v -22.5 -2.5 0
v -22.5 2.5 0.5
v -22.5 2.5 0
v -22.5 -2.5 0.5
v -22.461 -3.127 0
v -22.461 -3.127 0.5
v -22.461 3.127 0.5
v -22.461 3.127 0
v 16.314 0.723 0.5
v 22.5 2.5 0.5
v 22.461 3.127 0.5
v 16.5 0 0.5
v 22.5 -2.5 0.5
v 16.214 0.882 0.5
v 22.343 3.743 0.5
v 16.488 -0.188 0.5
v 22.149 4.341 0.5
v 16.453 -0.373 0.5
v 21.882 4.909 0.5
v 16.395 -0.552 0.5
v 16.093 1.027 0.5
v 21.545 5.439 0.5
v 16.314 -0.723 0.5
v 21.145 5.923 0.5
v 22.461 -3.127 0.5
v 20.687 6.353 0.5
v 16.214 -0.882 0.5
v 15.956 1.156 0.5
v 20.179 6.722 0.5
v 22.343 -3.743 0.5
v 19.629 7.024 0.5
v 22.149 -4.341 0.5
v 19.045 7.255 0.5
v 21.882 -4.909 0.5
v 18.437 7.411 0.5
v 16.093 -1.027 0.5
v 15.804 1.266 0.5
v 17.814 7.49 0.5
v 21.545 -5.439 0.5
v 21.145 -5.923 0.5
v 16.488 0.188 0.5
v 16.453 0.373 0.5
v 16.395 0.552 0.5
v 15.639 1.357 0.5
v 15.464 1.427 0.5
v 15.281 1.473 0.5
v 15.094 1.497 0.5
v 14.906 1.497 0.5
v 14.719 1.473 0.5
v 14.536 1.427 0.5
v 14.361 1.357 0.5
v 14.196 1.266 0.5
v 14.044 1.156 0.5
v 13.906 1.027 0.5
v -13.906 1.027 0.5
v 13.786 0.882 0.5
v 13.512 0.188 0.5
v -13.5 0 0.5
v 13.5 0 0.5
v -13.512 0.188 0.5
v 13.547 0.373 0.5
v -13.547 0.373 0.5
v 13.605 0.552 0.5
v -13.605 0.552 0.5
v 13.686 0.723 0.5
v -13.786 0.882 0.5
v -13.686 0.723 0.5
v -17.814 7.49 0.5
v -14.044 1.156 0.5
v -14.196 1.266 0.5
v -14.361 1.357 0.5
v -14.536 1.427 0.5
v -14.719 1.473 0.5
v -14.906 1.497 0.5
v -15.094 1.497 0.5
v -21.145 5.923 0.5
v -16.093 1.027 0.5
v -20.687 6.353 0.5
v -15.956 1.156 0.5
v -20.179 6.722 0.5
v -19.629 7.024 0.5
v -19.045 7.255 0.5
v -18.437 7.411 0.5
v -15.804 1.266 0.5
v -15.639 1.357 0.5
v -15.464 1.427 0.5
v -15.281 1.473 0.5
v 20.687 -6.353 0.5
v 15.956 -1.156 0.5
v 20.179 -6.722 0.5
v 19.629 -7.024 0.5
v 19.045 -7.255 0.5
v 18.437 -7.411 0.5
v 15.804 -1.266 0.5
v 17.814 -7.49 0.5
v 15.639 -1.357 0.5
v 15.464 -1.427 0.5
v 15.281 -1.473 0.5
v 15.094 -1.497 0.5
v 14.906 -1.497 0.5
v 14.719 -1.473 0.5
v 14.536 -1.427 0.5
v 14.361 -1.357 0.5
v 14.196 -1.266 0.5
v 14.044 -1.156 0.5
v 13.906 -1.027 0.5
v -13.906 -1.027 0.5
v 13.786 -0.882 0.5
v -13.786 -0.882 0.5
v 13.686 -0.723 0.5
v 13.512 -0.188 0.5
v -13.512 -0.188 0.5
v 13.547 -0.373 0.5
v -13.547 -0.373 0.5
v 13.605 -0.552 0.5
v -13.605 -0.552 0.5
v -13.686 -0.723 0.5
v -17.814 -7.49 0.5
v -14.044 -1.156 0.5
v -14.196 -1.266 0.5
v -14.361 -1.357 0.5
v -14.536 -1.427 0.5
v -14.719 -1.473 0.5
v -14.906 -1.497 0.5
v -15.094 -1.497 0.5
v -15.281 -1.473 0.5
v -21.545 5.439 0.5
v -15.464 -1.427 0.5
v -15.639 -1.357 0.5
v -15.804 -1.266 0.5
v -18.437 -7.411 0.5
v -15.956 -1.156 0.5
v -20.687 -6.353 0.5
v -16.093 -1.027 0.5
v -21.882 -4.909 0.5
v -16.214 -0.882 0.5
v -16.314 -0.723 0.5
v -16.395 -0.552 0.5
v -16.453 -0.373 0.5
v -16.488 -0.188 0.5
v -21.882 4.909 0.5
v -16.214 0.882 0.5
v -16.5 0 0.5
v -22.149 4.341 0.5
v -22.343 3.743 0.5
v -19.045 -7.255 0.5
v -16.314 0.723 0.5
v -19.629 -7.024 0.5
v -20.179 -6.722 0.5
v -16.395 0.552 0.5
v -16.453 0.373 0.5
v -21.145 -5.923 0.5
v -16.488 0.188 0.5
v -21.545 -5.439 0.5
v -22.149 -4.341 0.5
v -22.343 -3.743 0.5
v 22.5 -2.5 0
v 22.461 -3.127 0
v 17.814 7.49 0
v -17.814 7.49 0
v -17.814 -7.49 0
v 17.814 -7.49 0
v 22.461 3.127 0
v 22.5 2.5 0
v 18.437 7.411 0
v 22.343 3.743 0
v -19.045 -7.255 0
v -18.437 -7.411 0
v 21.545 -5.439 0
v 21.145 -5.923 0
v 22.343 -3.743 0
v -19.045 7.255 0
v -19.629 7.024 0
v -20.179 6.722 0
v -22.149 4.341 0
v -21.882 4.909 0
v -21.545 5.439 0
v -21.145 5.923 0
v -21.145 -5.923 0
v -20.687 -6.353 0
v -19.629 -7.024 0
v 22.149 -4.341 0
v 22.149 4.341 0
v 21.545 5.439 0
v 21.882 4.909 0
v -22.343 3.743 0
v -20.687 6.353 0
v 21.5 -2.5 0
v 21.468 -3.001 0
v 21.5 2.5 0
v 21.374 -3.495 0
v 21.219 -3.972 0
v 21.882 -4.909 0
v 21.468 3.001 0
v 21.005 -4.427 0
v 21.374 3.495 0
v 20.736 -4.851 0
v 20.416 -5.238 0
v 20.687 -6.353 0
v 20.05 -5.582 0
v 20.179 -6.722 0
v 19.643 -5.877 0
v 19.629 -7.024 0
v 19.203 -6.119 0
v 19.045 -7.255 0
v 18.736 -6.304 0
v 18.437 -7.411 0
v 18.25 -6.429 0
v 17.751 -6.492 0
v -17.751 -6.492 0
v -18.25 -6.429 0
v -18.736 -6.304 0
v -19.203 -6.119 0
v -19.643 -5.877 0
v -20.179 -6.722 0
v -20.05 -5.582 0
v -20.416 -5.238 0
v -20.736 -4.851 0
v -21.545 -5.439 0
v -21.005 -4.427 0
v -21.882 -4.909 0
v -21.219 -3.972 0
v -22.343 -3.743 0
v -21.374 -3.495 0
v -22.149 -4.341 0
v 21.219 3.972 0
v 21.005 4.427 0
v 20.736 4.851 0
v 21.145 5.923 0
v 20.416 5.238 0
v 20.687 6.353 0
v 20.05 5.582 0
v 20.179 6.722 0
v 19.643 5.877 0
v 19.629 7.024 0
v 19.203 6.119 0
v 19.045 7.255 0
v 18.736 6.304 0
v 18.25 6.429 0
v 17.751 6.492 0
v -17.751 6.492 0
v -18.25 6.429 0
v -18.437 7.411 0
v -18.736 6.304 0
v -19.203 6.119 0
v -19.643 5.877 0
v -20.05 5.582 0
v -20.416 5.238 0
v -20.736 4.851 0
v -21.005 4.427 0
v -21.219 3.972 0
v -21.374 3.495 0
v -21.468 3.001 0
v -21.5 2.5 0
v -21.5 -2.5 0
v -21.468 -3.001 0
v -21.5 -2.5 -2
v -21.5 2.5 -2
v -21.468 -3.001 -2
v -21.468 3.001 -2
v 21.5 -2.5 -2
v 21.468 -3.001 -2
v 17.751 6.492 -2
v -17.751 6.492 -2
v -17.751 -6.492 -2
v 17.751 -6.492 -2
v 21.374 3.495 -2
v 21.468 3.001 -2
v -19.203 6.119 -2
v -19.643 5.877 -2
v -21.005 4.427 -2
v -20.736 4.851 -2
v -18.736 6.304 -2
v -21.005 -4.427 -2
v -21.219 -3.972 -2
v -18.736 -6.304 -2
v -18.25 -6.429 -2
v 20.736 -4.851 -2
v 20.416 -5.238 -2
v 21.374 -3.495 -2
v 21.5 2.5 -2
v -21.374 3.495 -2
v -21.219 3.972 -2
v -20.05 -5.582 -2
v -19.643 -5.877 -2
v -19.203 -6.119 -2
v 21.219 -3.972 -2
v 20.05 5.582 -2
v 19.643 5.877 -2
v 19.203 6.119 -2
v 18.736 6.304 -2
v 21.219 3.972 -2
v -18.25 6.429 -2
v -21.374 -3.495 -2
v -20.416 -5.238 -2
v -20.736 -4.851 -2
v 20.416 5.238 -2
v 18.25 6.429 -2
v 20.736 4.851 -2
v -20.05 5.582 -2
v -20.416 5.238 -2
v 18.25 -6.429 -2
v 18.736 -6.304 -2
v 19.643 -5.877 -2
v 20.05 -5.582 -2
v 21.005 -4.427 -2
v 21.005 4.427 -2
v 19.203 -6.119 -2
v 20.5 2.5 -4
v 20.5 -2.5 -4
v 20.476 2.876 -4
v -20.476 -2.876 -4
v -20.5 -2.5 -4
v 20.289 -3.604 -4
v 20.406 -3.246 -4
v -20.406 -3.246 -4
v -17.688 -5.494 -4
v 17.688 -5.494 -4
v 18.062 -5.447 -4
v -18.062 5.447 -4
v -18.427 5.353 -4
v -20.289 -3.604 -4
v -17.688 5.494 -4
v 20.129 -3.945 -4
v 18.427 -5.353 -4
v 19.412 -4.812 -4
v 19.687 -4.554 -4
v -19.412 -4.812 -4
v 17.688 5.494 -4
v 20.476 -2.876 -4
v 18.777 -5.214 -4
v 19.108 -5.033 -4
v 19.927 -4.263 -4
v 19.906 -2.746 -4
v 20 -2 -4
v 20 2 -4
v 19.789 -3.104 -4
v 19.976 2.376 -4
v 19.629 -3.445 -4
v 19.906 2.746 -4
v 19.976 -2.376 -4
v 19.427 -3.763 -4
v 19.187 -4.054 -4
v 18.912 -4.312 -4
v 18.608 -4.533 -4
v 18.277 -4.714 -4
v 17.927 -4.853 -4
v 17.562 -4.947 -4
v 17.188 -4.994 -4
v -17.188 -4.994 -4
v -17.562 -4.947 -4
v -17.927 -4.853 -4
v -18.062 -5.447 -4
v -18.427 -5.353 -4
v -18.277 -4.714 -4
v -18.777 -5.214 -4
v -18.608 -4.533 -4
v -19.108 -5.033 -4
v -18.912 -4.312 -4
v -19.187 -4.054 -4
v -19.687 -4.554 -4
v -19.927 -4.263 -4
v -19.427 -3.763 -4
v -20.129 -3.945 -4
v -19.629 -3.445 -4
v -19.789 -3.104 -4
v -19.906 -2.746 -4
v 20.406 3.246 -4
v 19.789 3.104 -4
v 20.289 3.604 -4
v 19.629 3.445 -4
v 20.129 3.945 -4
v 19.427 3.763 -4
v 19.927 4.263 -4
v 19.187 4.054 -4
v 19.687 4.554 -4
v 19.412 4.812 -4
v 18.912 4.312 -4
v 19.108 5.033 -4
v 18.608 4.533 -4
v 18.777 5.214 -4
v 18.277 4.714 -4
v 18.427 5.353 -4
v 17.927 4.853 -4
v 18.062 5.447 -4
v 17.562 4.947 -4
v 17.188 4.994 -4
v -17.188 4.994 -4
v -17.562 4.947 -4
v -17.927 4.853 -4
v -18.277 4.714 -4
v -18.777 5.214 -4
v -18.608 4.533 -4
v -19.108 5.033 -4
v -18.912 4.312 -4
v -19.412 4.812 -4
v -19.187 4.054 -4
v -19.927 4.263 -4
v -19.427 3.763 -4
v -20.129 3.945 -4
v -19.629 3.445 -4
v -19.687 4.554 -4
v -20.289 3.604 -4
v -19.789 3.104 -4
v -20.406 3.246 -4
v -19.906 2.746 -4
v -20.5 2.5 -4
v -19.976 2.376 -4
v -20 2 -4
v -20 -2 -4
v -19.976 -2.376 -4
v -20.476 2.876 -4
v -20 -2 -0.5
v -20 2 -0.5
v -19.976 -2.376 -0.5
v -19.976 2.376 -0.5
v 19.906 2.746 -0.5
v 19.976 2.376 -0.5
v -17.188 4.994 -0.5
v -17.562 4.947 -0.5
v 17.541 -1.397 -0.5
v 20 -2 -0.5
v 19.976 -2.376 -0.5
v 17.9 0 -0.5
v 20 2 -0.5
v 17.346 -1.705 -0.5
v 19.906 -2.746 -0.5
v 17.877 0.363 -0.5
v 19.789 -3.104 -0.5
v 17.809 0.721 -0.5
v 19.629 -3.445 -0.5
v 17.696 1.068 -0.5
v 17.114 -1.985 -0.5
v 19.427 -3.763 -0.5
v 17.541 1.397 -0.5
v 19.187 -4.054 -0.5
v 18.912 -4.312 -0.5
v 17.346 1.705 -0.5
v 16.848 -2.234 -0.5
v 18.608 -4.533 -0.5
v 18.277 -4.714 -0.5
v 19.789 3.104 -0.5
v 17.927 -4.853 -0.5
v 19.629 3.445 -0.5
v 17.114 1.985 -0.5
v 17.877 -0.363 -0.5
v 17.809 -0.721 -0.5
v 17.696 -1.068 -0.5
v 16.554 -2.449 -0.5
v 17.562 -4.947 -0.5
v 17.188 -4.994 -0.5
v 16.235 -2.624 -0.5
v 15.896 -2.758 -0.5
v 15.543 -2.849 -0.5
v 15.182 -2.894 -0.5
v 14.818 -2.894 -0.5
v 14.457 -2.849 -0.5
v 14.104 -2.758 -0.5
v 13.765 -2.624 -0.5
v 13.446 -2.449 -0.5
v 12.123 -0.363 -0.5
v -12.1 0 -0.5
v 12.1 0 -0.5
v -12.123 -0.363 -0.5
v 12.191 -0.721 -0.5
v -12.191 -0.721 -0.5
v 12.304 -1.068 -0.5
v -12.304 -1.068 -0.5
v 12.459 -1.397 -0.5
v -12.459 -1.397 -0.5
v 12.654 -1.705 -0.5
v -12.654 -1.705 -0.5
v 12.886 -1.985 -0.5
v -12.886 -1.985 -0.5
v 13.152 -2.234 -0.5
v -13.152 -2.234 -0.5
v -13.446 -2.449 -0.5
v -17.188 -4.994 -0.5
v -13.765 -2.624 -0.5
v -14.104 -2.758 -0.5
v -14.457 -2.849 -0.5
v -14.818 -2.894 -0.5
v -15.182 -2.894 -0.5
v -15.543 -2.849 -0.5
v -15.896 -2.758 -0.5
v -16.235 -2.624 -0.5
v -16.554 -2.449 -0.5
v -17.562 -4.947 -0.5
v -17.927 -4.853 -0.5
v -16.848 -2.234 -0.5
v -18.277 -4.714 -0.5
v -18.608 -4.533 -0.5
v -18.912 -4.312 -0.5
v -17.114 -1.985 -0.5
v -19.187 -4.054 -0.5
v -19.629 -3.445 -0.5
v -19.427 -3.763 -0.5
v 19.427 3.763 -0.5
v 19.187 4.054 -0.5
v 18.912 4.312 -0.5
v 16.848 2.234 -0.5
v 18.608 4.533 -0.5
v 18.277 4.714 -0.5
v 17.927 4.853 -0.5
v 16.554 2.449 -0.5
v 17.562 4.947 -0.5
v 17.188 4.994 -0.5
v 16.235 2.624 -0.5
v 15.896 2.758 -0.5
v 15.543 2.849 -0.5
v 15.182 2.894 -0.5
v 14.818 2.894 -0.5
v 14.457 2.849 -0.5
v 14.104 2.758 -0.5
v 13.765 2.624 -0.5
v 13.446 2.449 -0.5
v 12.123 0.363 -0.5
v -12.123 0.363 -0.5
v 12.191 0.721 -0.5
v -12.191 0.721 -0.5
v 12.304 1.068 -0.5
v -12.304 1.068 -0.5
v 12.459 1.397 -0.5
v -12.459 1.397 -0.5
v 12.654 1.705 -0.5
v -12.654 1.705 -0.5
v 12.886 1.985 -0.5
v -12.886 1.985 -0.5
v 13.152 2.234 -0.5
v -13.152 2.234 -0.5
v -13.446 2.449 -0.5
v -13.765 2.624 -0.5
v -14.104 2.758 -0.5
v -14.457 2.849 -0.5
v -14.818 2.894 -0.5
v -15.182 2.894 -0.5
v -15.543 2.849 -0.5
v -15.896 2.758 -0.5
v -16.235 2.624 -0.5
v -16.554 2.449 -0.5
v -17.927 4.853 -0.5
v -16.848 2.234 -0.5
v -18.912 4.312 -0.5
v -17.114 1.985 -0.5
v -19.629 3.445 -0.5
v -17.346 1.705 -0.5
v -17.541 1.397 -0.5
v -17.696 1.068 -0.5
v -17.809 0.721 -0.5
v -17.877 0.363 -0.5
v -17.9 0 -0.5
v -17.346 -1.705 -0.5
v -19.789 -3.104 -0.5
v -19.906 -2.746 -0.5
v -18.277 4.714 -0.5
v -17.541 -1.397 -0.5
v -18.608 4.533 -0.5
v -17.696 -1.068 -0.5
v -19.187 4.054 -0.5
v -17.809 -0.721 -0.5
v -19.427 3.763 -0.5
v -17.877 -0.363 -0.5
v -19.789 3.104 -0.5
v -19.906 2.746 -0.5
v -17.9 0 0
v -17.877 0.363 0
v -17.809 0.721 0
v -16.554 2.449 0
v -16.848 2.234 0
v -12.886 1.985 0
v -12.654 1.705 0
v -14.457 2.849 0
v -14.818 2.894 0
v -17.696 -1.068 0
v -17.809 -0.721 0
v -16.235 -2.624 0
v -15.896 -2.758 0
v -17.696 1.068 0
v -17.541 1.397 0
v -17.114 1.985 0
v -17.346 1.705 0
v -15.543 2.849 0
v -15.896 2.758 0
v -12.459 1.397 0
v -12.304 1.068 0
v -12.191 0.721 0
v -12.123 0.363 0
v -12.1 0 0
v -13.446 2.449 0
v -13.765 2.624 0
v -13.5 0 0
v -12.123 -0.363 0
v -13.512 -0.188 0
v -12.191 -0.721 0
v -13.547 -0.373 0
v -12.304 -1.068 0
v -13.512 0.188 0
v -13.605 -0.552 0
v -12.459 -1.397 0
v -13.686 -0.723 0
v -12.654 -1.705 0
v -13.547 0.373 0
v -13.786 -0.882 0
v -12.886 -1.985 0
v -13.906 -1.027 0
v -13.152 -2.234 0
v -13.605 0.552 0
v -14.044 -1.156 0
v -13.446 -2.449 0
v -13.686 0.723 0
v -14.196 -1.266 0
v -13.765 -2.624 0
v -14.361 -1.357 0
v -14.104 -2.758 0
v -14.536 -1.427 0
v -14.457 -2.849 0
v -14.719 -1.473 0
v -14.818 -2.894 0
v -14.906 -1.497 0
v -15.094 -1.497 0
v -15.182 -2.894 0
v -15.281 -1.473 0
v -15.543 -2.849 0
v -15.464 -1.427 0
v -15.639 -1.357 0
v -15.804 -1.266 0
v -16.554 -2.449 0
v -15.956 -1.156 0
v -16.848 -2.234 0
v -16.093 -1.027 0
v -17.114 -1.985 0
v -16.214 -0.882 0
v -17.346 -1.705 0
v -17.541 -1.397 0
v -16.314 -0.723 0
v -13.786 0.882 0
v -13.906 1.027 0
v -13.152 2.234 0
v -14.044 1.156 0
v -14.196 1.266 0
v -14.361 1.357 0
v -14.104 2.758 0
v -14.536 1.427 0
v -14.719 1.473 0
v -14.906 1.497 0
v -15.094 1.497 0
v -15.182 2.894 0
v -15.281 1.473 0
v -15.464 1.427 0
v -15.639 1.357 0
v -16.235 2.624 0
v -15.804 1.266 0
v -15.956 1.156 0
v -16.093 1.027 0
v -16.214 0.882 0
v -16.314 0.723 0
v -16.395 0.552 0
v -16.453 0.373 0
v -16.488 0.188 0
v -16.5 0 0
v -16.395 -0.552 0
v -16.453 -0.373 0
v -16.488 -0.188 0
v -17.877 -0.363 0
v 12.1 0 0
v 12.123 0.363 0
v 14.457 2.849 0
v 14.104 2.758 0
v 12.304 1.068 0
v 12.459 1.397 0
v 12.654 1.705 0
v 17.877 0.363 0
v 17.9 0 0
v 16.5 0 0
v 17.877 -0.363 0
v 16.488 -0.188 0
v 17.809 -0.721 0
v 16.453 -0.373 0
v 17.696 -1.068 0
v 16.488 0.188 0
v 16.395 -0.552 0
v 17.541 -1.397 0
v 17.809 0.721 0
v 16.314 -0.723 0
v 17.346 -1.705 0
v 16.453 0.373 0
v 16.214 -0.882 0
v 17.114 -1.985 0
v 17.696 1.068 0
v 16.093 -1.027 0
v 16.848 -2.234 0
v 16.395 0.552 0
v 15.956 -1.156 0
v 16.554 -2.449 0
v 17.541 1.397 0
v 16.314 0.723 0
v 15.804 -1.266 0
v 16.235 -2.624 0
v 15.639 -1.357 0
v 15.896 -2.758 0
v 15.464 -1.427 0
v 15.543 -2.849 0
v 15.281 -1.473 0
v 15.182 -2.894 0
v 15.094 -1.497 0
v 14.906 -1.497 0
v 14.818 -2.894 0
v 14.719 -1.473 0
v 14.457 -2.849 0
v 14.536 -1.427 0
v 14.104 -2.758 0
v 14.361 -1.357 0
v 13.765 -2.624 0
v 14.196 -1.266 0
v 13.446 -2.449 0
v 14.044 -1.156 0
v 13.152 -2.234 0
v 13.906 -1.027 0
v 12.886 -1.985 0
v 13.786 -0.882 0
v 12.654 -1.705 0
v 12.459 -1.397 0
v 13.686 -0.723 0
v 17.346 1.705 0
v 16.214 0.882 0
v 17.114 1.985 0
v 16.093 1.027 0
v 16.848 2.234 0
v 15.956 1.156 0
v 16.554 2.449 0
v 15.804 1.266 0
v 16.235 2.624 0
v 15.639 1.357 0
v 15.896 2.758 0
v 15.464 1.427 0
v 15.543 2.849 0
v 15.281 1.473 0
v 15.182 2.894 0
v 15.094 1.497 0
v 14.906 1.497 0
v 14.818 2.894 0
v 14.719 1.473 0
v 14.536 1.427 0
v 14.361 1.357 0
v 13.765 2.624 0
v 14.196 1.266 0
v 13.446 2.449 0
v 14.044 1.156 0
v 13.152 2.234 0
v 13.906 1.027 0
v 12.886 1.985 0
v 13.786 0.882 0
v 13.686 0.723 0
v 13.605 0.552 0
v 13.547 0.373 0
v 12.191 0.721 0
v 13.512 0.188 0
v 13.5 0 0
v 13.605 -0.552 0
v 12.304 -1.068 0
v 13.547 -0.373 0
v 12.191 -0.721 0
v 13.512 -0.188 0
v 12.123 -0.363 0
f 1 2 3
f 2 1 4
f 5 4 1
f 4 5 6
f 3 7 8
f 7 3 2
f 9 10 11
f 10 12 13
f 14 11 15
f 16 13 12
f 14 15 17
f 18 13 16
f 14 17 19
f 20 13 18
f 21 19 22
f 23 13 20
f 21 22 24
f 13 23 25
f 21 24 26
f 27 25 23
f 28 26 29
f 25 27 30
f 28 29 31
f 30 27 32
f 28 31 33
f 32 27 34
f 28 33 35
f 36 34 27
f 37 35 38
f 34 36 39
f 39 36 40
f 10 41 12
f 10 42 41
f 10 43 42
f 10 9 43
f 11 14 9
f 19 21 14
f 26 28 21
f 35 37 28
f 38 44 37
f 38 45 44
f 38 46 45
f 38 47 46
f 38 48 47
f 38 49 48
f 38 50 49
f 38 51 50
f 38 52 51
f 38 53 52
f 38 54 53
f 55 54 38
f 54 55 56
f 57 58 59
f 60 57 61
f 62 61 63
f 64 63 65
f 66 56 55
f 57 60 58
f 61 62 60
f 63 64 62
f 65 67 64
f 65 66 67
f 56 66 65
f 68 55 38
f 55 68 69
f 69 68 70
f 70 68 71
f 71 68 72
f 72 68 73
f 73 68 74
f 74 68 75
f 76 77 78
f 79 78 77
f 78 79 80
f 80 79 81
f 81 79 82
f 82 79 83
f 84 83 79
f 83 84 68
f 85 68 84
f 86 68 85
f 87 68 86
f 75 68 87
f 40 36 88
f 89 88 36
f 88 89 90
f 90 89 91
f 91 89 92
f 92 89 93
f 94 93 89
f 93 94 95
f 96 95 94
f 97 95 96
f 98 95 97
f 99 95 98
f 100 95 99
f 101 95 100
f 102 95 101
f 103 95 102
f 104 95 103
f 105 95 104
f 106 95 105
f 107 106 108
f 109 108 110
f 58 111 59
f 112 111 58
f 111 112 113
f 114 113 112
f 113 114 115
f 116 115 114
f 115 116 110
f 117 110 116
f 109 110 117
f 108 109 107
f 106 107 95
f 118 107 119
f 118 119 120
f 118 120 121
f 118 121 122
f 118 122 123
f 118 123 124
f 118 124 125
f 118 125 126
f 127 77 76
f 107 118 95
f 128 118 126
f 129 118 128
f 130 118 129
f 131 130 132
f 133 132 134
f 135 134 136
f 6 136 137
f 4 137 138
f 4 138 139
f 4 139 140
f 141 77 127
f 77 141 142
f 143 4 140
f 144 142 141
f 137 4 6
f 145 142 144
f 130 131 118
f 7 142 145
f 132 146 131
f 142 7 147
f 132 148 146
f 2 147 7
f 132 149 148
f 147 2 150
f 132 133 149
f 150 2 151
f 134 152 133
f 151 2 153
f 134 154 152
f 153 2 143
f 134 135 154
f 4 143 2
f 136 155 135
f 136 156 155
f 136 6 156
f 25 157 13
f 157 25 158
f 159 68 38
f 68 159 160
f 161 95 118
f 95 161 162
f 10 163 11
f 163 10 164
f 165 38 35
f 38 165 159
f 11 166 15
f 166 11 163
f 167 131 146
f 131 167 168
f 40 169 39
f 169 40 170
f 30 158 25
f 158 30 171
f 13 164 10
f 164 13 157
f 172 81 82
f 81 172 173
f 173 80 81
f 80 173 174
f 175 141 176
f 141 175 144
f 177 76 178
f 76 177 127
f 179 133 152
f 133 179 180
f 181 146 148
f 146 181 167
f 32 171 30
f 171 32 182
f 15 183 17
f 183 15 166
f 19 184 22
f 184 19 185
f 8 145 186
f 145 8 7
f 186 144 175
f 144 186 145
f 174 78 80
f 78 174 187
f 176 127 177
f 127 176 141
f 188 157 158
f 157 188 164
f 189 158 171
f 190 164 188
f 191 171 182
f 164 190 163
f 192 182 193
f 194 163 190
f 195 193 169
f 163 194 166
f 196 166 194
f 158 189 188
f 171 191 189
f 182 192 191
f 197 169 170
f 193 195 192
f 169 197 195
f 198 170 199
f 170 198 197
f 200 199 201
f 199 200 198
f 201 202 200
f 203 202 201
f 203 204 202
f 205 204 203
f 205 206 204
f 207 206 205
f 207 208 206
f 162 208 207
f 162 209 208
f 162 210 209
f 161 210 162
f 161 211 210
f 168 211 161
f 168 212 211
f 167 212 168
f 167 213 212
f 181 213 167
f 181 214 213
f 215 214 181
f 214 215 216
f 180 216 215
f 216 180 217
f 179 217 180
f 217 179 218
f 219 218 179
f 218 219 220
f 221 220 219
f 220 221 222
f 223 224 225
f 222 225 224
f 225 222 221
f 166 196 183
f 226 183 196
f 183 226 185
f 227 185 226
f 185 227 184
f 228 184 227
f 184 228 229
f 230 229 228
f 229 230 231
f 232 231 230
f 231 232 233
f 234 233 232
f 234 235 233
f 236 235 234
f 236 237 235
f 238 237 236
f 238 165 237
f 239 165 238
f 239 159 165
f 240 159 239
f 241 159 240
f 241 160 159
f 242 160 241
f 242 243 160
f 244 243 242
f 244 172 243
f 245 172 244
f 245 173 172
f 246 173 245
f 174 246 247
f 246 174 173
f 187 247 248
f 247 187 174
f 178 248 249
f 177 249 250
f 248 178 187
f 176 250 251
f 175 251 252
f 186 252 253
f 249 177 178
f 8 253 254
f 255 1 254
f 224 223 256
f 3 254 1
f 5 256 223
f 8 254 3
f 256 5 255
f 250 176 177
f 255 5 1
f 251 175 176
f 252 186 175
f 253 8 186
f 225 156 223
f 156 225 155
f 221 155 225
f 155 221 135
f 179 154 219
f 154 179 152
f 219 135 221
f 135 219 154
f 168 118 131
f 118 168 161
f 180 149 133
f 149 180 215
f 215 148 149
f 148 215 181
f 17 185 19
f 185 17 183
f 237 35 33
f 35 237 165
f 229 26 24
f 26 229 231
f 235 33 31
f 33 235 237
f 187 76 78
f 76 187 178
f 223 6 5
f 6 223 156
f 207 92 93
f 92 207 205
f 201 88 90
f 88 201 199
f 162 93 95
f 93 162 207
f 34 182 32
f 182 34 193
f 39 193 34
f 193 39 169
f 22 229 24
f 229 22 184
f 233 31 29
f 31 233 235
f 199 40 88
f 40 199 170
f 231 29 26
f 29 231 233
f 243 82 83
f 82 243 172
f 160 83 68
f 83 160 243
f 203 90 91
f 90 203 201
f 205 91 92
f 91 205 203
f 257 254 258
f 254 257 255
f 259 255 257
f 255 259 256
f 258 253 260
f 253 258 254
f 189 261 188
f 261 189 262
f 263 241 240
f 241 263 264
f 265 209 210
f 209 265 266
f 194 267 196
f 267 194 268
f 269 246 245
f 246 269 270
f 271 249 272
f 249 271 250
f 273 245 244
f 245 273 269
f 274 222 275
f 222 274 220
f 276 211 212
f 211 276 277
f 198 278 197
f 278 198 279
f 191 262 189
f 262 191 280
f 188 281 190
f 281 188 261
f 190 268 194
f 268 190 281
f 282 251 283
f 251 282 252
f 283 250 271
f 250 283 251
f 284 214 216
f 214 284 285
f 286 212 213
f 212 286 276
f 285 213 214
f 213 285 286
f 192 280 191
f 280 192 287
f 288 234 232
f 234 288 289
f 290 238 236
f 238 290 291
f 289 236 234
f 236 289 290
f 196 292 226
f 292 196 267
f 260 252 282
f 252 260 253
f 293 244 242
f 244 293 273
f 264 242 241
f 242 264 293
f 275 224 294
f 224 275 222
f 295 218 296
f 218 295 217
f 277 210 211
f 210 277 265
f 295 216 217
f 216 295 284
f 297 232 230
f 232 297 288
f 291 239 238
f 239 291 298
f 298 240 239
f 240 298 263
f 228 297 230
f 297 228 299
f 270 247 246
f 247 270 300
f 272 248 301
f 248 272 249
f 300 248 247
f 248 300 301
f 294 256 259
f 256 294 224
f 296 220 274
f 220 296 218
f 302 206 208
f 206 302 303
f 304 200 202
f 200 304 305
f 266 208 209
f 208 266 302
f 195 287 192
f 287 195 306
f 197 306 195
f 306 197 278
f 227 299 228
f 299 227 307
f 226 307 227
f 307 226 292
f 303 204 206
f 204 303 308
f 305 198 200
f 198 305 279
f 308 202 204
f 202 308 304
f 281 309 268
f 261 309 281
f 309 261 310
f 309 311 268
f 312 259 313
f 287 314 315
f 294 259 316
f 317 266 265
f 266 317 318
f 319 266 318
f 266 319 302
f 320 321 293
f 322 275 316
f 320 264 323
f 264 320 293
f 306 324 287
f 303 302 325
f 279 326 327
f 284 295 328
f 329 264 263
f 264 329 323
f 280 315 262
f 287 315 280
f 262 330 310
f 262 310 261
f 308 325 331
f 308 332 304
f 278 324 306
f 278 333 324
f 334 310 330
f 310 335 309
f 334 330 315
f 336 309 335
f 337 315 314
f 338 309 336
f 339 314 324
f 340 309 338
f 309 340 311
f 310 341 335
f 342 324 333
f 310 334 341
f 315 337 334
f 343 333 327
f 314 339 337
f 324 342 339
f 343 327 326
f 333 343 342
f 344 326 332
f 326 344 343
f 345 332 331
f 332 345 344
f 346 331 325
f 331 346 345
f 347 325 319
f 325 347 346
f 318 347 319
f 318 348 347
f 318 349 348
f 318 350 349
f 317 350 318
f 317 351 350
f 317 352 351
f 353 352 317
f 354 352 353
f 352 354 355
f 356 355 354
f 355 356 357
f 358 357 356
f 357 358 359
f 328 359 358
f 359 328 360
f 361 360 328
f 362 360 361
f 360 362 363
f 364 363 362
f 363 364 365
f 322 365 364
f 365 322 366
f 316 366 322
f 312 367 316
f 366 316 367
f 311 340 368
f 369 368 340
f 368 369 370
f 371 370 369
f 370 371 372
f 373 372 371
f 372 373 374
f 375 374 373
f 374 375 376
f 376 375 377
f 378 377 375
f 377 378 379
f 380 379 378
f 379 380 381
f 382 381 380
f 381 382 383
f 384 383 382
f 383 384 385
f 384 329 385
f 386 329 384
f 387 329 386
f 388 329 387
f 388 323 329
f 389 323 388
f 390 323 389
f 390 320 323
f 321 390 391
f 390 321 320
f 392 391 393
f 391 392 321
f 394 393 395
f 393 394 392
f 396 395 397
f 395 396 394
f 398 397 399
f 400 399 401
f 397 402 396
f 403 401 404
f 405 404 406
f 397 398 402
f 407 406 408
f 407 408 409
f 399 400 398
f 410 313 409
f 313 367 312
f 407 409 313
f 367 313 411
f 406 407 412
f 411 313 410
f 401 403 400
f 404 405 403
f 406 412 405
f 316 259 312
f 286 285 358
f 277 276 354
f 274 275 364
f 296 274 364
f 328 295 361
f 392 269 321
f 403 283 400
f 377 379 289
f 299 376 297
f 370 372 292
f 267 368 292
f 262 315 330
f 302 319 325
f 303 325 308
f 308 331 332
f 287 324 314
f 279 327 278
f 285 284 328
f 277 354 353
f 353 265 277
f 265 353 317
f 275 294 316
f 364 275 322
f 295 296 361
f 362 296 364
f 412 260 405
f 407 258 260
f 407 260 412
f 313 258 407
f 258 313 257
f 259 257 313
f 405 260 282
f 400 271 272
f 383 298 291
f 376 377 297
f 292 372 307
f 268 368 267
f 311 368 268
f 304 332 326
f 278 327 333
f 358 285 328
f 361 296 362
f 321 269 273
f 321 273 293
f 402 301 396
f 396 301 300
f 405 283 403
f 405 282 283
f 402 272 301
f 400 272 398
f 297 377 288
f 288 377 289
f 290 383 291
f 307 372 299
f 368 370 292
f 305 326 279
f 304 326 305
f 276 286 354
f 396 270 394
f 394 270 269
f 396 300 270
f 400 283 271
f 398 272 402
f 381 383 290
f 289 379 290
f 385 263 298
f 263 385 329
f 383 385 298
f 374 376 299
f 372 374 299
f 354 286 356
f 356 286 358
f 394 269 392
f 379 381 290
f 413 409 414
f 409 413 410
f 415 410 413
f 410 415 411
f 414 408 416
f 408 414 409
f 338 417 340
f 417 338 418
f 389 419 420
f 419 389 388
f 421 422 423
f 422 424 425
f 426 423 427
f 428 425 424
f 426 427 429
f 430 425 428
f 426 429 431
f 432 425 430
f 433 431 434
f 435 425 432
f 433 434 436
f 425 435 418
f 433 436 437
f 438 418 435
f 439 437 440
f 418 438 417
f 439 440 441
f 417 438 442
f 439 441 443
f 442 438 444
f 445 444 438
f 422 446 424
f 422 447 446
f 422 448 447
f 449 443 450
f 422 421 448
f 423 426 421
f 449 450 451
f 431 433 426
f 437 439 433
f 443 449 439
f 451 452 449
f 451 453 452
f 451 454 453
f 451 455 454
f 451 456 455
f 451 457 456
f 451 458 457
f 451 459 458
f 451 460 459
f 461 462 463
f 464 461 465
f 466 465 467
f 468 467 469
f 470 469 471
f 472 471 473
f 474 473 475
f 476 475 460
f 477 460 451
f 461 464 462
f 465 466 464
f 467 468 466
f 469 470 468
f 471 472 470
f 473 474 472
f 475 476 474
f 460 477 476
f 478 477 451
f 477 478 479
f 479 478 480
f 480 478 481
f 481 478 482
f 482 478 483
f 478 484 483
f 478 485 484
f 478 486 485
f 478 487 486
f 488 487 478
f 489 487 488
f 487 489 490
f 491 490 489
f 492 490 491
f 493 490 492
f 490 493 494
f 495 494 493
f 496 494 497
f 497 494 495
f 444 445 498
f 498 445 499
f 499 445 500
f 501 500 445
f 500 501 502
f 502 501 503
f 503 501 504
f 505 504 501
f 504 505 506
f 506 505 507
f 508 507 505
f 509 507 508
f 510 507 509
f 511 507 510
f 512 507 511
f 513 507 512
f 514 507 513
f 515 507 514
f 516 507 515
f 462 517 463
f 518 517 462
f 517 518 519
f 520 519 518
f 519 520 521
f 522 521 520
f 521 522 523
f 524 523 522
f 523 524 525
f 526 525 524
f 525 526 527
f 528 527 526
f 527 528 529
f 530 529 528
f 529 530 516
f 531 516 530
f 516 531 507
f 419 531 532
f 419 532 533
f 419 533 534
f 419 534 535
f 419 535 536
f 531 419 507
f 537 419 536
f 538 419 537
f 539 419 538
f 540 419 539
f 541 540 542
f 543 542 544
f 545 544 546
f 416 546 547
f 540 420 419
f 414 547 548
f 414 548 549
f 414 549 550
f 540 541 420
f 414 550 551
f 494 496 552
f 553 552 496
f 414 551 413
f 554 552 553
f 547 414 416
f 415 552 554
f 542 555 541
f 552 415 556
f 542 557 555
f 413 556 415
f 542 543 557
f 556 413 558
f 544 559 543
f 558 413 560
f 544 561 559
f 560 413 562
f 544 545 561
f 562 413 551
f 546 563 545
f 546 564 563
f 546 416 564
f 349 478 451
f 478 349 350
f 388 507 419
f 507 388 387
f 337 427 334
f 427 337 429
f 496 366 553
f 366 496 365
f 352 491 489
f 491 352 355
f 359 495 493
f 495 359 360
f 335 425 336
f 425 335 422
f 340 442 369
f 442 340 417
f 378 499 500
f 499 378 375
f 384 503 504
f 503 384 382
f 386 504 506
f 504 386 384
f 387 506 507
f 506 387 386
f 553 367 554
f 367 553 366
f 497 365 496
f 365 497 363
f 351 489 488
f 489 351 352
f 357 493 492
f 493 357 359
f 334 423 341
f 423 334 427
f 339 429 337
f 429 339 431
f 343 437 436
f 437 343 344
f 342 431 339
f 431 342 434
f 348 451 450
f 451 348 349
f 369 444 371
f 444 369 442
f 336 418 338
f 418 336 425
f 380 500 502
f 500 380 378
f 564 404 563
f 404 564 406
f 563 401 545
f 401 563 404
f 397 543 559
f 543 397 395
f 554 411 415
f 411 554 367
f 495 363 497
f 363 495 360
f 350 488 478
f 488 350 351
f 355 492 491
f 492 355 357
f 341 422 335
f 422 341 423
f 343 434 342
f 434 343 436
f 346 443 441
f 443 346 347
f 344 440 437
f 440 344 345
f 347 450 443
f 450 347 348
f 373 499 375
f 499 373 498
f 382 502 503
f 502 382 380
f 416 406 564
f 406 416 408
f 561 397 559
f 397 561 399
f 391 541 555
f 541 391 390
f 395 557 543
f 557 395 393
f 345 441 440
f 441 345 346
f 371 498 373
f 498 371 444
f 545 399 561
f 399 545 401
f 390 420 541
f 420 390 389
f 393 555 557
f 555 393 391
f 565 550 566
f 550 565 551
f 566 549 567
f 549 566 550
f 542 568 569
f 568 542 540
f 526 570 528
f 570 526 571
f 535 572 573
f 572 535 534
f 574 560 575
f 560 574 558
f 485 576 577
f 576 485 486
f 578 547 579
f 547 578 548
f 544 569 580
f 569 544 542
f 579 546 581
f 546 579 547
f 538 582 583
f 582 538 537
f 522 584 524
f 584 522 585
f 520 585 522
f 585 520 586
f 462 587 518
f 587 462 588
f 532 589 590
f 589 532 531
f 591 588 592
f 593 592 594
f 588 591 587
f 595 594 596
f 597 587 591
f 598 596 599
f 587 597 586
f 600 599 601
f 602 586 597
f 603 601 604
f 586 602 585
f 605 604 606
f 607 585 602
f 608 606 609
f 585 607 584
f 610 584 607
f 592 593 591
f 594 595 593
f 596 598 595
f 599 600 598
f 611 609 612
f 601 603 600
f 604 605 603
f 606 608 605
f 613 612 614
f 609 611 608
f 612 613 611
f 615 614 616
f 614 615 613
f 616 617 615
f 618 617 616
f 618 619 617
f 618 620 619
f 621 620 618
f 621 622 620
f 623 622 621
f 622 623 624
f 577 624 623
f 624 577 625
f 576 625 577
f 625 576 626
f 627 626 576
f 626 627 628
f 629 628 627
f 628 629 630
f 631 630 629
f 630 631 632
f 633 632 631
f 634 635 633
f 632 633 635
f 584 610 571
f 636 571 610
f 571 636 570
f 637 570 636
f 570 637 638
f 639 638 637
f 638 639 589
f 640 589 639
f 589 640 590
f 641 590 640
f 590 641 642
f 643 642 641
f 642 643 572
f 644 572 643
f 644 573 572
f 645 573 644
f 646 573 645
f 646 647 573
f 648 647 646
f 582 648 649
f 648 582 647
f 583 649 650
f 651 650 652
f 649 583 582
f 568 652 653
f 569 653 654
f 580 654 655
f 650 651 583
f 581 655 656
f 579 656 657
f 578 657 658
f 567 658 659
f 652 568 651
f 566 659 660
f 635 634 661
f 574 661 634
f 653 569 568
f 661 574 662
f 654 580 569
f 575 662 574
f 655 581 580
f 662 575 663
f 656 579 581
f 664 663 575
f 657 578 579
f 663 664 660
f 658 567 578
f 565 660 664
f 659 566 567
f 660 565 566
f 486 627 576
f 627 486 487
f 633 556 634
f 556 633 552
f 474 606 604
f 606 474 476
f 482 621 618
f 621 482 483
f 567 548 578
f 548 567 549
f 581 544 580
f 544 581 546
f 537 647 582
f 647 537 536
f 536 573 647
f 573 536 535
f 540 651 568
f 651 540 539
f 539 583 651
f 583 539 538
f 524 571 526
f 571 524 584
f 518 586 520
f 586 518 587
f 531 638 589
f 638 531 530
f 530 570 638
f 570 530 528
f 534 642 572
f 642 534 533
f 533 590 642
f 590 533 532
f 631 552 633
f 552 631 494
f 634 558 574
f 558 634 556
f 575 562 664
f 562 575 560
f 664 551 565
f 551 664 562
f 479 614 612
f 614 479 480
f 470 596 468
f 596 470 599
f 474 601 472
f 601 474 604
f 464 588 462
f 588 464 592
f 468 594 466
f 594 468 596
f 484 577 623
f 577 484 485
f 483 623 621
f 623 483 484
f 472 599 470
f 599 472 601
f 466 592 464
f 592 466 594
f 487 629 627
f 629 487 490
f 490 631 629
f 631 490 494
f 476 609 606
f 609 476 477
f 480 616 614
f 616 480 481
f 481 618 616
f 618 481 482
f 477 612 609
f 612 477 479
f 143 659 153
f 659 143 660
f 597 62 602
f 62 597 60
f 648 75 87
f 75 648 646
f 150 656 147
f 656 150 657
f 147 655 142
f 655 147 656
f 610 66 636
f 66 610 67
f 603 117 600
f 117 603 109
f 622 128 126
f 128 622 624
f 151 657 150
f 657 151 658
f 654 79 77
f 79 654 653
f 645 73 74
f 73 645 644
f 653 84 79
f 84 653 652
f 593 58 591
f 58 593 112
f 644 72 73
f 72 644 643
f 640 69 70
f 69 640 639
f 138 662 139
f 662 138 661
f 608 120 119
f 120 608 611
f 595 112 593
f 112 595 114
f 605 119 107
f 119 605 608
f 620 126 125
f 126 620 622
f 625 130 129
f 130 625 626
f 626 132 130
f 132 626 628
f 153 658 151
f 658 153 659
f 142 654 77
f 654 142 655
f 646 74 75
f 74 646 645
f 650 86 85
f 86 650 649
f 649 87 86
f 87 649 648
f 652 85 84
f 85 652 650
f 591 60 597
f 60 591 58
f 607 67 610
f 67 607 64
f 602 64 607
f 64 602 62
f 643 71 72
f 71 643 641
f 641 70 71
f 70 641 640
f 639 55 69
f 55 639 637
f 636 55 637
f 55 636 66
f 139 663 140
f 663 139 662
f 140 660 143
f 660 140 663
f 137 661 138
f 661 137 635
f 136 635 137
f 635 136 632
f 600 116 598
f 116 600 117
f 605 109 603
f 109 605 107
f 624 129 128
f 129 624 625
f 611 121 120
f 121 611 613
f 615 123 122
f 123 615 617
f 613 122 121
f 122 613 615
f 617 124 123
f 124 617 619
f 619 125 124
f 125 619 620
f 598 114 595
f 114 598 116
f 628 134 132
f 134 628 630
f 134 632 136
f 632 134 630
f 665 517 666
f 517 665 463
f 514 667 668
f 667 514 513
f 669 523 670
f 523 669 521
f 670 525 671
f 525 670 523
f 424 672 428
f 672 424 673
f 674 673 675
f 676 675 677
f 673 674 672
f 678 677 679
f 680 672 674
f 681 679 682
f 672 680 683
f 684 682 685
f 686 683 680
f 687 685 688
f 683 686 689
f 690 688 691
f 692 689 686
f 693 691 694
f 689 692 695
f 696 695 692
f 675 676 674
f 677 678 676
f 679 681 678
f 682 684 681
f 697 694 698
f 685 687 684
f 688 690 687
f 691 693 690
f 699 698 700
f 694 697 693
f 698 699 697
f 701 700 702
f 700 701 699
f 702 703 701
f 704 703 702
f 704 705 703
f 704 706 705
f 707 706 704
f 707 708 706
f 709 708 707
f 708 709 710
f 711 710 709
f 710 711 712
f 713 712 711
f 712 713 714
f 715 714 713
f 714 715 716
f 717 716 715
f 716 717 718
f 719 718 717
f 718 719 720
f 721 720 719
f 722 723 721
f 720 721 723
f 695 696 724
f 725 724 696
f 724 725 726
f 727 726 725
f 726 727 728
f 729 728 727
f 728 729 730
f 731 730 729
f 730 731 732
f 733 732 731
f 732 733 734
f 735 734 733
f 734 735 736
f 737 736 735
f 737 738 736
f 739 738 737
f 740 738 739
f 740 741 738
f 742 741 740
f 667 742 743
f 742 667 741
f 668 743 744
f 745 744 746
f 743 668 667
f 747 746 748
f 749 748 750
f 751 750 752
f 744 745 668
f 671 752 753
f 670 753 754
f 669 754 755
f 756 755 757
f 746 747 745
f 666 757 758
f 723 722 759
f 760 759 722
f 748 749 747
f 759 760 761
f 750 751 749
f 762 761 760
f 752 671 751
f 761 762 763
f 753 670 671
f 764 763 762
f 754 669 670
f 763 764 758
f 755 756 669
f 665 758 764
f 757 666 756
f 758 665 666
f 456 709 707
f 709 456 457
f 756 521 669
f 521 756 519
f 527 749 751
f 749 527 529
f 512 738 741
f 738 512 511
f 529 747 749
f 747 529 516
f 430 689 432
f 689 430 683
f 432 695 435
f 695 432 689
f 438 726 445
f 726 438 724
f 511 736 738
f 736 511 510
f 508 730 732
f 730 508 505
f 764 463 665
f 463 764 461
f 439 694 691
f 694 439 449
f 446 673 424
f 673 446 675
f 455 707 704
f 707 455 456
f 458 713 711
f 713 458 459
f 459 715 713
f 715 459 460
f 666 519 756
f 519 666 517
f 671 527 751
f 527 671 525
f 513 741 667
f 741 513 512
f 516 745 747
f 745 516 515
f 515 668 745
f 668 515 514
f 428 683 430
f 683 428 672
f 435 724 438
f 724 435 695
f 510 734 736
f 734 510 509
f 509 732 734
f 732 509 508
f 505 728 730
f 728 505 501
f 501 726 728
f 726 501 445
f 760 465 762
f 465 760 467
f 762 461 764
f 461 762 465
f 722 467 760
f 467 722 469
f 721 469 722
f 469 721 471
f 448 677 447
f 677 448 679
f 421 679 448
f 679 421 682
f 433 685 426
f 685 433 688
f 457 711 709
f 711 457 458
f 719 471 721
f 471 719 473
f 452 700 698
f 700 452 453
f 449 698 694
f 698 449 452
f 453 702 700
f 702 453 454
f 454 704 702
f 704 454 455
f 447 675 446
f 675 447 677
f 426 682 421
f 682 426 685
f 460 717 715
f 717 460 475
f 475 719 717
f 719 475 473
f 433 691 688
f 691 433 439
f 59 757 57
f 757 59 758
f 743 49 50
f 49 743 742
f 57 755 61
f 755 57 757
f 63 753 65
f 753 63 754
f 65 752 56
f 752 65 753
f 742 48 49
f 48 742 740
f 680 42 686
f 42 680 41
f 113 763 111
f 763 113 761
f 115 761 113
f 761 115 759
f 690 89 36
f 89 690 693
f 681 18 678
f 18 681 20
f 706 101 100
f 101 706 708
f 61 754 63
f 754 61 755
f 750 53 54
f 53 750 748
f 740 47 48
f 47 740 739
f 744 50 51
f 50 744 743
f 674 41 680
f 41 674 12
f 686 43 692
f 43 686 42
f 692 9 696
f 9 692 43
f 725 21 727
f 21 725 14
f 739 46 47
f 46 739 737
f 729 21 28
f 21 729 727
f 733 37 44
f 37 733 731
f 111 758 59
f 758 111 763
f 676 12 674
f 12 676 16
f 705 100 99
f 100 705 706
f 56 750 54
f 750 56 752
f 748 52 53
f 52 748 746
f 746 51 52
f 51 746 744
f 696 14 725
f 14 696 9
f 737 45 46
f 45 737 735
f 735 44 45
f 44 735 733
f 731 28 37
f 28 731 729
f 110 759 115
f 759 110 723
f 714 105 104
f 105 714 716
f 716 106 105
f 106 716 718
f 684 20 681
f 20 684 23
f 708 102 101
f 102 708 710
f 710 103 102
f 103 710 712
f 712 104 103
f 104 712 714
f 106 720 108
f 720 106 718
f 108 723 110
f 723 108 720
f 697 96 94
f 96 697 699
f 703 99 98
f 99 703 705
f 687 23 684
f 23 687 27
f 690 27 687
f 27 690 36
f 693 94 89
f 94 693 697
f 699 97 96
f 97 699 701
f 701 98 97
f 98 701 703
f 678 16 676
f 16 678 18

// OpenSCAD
$fn = 50;


difference() {
	union() {
		translate(v = [0, 0, 0]) {
			rotate(a = [0, 0, 0]) {
				hull() {
					translate(v = [-17.5000000000, 2.5000000000, 0]) {
						rotate(a = [0, 0, 0]) {
							translate(v = [0, 0, 0]) {
								rotate(a = [0, 0, 0]) {
									cylinder(h = 0.5000000000, r = 5);
								}
							}
						}
					}
					translate(v = [17.5000000000, 2.5000000000, 0]) {
						rotate(a = [0, 0, 0]) {
							translate(v = [0, 0, 0]) {
								rotate(a = [0, 0, 0]) {
									cylinder(h = 0.5000000000, r = 5);
								}
							}
						}
					}
					translate(v = [-17.5000000000, -2.5000000000, 0]) {
						rotate(a = [0, 0, 0]) {
							translate(v = [0, 0, 0]) {
								rotate(a = [0, 0, 0]) {
									cylinder(h = 0.5000000000, r = 5);
								}
							}
						}
					}
					translate(v = [17.5000000000, -2.5000000000, 0]) {
						rotate(a = [0, 0, 0]) {
							translate(v = [0, 0, 0]) {
								rotate(a = [0, 0, 0]) {
									cylinder(h = 0.5000000000, r = 5);
								}
							}
						}
					}
				}
			}
		}
		translate(v = [0, 0, -2]) {
			rotate(a = [0, 0, 0]) {
				hull() {
					translate(v = [-17.5000000000, 2.5000000000, 0]) {
						rotate(a = [0, 0, 0]) {
							cylinder(h = 2, r1 = 4.0000000000, r2 = 4.0000000000);
						}
					}
					translate(v = [17.5000000000, 2.5000000000, 0]) {
						rotate(a = [0, 0, 0]) {
							cylinder(h = 2, r1 = 4.0000000000, r2 = 4.0000000000);
						}
					}
					translate(v = [-17.5000000000, -2.5000000000, 0]) {
						rotate(a = [0, 0, 0]) {
							cylinder(h = 2, r1 = 4.0000000000, r2 = 4.0000000000);
						}
					}
					translate(v = [17.5000000000, -2.5000000000, 0]) {
						rotate(a = [0, 0, 0]) {
							cylinder(h = 2, r1 = 4.0000000000, r2 = 4.0000000000);
						}
					}
				}
			}
		}
		translate(v = [0, 0, -4]) {
			rotate(a = [0, 180, 0]) {
				hull() {
					translate(v = [-17.5000000000, 2.5000000000, 0]) {
						rotate(a = [0, 180, 0]) {
							cylinder(h = 2, r1 = 3.0000000000, r2 = 4.0000000000);
						}
					}
					translate(v = [17.5000000000, 2.5000000000, 0]) {
						rotate(a = [0, 180, 0]) {
							cylinder(h = 2, r1 = 3.0000000000, r2 = 4.0000000000);
						}
					}
					translate(v = [-17.5000000000, -2.5000000000, 0]) {
						rotate(a = [0, 180, 0]) {
							cylinder(h = 2, r1 = 3.0000000000, r2 = 4.0000000000);
						}
					}
					translate(v = [17.5000000000, -2.5000000000, 0]) {
						rotate(a = [0, 180, 0]) {
							cylinder(h = 2, r1 = 3.0000000000, r2 = 4.0000000000);
						}
					}
				}
			}
		}
	}
	union() {
		translate(v = [0, 0, -4]) {
			rotate(a = [0, 0, 0]) {
				hull() {
					translate(v = [-17.0000000000, 2.0000000000, 0]) {
						rotate(a = [0, 0, 0]) {
							translate(v = [0, 0, 0]) {
								rotate(a = [0, 0, 0]) {
									cylinder(h = 3.5000000000, r = 3.0000000000);
								}
							}
						}
					}
					translate(v = [17.0000000000, 2.0000000000, 0]) {
						rotate(a = [0, 0, 0]) {
							translate(v = [0, 0, 0]) {
								rotate(a = [0, 0, 0]) {
									cylinder(h = 3.5000000000, r = 3.0000000000);
								}
							}
						}
					}
					translate(v = [-17.0000000000, -2.0000000000, 0]) {
						rotate(a = [0, 0, 0]) {
							translate(v = [0, 0, 0]) {
								rotate(a = [0, 0, 0]) {
									cylinder(h = 3.5000000000, r = 3.0000000000);
								}
							}
						}
					}
					translate(v = [17.0000000000, -2.0000000000, 0]) {
						rotate(a = [0, 0, 0]) {
							translate(v = [0, 0, 0]) {
								rotate(a = [0, 0, 0]) {
									cylinder(h = 3.5000000000, r = 3.0000000000);
								}
							}
						}
					}
				}
			}
		}
		#translate(v = [-15.0000000000, 0.0000000000, 0]) {
			rotate(a = [0, 180, 0]) {
				cylinder(h = 3, r = 2.9000000000);
			}
		}
		#translate(v = [-15.0000000000, 0.0000000000, 10]) {
			rotate(a = [0, 180, 0]) {
				cylinder(h = 10, r = 1.5000000000);
			}
		}
		#translate(v = [15.0000000000, 0.0000000000, 0]) {
			rotate(a = [0, 180, 0]) {
				cylinder(h = 3, r = 2.9000000000);
			}
		}
		#translate(v = [15.0000000000, 0.0000000000, 10]) {
			rotate(a = [0, 180, 0]) {
				cylinder(h = 10, r = 1.5000000000);
			}
		}
		#translate(v = [-15.0000000000, 0.0000000000, 0]) {
			rotate(a = [0, 180, 0]) {
				cylinder(h = 3, r = 2.9000000000);
			}
		}
		#translate(v = [-15.0000000000, 0.0000000000, 10]) {
			rotate(a = [0, 180, 0]) {
				cylinder(h = 10, r = 1.5000000000);
			}
		}
		#translate(v = [15.0000000000, 0.0000000000, 0]) {
			rotate(a = [0, 180, 0]) {
				cylinder(h = 3, r = 2.9000000000);
			}
		}
		#translate(v = [15.0000000000, 0.0000000000, 10]) {
			rotate(a = [0, 180, 0]) {
				cylinder(h = 10, r = 1.5000000000);
			}
		}
	}
}
